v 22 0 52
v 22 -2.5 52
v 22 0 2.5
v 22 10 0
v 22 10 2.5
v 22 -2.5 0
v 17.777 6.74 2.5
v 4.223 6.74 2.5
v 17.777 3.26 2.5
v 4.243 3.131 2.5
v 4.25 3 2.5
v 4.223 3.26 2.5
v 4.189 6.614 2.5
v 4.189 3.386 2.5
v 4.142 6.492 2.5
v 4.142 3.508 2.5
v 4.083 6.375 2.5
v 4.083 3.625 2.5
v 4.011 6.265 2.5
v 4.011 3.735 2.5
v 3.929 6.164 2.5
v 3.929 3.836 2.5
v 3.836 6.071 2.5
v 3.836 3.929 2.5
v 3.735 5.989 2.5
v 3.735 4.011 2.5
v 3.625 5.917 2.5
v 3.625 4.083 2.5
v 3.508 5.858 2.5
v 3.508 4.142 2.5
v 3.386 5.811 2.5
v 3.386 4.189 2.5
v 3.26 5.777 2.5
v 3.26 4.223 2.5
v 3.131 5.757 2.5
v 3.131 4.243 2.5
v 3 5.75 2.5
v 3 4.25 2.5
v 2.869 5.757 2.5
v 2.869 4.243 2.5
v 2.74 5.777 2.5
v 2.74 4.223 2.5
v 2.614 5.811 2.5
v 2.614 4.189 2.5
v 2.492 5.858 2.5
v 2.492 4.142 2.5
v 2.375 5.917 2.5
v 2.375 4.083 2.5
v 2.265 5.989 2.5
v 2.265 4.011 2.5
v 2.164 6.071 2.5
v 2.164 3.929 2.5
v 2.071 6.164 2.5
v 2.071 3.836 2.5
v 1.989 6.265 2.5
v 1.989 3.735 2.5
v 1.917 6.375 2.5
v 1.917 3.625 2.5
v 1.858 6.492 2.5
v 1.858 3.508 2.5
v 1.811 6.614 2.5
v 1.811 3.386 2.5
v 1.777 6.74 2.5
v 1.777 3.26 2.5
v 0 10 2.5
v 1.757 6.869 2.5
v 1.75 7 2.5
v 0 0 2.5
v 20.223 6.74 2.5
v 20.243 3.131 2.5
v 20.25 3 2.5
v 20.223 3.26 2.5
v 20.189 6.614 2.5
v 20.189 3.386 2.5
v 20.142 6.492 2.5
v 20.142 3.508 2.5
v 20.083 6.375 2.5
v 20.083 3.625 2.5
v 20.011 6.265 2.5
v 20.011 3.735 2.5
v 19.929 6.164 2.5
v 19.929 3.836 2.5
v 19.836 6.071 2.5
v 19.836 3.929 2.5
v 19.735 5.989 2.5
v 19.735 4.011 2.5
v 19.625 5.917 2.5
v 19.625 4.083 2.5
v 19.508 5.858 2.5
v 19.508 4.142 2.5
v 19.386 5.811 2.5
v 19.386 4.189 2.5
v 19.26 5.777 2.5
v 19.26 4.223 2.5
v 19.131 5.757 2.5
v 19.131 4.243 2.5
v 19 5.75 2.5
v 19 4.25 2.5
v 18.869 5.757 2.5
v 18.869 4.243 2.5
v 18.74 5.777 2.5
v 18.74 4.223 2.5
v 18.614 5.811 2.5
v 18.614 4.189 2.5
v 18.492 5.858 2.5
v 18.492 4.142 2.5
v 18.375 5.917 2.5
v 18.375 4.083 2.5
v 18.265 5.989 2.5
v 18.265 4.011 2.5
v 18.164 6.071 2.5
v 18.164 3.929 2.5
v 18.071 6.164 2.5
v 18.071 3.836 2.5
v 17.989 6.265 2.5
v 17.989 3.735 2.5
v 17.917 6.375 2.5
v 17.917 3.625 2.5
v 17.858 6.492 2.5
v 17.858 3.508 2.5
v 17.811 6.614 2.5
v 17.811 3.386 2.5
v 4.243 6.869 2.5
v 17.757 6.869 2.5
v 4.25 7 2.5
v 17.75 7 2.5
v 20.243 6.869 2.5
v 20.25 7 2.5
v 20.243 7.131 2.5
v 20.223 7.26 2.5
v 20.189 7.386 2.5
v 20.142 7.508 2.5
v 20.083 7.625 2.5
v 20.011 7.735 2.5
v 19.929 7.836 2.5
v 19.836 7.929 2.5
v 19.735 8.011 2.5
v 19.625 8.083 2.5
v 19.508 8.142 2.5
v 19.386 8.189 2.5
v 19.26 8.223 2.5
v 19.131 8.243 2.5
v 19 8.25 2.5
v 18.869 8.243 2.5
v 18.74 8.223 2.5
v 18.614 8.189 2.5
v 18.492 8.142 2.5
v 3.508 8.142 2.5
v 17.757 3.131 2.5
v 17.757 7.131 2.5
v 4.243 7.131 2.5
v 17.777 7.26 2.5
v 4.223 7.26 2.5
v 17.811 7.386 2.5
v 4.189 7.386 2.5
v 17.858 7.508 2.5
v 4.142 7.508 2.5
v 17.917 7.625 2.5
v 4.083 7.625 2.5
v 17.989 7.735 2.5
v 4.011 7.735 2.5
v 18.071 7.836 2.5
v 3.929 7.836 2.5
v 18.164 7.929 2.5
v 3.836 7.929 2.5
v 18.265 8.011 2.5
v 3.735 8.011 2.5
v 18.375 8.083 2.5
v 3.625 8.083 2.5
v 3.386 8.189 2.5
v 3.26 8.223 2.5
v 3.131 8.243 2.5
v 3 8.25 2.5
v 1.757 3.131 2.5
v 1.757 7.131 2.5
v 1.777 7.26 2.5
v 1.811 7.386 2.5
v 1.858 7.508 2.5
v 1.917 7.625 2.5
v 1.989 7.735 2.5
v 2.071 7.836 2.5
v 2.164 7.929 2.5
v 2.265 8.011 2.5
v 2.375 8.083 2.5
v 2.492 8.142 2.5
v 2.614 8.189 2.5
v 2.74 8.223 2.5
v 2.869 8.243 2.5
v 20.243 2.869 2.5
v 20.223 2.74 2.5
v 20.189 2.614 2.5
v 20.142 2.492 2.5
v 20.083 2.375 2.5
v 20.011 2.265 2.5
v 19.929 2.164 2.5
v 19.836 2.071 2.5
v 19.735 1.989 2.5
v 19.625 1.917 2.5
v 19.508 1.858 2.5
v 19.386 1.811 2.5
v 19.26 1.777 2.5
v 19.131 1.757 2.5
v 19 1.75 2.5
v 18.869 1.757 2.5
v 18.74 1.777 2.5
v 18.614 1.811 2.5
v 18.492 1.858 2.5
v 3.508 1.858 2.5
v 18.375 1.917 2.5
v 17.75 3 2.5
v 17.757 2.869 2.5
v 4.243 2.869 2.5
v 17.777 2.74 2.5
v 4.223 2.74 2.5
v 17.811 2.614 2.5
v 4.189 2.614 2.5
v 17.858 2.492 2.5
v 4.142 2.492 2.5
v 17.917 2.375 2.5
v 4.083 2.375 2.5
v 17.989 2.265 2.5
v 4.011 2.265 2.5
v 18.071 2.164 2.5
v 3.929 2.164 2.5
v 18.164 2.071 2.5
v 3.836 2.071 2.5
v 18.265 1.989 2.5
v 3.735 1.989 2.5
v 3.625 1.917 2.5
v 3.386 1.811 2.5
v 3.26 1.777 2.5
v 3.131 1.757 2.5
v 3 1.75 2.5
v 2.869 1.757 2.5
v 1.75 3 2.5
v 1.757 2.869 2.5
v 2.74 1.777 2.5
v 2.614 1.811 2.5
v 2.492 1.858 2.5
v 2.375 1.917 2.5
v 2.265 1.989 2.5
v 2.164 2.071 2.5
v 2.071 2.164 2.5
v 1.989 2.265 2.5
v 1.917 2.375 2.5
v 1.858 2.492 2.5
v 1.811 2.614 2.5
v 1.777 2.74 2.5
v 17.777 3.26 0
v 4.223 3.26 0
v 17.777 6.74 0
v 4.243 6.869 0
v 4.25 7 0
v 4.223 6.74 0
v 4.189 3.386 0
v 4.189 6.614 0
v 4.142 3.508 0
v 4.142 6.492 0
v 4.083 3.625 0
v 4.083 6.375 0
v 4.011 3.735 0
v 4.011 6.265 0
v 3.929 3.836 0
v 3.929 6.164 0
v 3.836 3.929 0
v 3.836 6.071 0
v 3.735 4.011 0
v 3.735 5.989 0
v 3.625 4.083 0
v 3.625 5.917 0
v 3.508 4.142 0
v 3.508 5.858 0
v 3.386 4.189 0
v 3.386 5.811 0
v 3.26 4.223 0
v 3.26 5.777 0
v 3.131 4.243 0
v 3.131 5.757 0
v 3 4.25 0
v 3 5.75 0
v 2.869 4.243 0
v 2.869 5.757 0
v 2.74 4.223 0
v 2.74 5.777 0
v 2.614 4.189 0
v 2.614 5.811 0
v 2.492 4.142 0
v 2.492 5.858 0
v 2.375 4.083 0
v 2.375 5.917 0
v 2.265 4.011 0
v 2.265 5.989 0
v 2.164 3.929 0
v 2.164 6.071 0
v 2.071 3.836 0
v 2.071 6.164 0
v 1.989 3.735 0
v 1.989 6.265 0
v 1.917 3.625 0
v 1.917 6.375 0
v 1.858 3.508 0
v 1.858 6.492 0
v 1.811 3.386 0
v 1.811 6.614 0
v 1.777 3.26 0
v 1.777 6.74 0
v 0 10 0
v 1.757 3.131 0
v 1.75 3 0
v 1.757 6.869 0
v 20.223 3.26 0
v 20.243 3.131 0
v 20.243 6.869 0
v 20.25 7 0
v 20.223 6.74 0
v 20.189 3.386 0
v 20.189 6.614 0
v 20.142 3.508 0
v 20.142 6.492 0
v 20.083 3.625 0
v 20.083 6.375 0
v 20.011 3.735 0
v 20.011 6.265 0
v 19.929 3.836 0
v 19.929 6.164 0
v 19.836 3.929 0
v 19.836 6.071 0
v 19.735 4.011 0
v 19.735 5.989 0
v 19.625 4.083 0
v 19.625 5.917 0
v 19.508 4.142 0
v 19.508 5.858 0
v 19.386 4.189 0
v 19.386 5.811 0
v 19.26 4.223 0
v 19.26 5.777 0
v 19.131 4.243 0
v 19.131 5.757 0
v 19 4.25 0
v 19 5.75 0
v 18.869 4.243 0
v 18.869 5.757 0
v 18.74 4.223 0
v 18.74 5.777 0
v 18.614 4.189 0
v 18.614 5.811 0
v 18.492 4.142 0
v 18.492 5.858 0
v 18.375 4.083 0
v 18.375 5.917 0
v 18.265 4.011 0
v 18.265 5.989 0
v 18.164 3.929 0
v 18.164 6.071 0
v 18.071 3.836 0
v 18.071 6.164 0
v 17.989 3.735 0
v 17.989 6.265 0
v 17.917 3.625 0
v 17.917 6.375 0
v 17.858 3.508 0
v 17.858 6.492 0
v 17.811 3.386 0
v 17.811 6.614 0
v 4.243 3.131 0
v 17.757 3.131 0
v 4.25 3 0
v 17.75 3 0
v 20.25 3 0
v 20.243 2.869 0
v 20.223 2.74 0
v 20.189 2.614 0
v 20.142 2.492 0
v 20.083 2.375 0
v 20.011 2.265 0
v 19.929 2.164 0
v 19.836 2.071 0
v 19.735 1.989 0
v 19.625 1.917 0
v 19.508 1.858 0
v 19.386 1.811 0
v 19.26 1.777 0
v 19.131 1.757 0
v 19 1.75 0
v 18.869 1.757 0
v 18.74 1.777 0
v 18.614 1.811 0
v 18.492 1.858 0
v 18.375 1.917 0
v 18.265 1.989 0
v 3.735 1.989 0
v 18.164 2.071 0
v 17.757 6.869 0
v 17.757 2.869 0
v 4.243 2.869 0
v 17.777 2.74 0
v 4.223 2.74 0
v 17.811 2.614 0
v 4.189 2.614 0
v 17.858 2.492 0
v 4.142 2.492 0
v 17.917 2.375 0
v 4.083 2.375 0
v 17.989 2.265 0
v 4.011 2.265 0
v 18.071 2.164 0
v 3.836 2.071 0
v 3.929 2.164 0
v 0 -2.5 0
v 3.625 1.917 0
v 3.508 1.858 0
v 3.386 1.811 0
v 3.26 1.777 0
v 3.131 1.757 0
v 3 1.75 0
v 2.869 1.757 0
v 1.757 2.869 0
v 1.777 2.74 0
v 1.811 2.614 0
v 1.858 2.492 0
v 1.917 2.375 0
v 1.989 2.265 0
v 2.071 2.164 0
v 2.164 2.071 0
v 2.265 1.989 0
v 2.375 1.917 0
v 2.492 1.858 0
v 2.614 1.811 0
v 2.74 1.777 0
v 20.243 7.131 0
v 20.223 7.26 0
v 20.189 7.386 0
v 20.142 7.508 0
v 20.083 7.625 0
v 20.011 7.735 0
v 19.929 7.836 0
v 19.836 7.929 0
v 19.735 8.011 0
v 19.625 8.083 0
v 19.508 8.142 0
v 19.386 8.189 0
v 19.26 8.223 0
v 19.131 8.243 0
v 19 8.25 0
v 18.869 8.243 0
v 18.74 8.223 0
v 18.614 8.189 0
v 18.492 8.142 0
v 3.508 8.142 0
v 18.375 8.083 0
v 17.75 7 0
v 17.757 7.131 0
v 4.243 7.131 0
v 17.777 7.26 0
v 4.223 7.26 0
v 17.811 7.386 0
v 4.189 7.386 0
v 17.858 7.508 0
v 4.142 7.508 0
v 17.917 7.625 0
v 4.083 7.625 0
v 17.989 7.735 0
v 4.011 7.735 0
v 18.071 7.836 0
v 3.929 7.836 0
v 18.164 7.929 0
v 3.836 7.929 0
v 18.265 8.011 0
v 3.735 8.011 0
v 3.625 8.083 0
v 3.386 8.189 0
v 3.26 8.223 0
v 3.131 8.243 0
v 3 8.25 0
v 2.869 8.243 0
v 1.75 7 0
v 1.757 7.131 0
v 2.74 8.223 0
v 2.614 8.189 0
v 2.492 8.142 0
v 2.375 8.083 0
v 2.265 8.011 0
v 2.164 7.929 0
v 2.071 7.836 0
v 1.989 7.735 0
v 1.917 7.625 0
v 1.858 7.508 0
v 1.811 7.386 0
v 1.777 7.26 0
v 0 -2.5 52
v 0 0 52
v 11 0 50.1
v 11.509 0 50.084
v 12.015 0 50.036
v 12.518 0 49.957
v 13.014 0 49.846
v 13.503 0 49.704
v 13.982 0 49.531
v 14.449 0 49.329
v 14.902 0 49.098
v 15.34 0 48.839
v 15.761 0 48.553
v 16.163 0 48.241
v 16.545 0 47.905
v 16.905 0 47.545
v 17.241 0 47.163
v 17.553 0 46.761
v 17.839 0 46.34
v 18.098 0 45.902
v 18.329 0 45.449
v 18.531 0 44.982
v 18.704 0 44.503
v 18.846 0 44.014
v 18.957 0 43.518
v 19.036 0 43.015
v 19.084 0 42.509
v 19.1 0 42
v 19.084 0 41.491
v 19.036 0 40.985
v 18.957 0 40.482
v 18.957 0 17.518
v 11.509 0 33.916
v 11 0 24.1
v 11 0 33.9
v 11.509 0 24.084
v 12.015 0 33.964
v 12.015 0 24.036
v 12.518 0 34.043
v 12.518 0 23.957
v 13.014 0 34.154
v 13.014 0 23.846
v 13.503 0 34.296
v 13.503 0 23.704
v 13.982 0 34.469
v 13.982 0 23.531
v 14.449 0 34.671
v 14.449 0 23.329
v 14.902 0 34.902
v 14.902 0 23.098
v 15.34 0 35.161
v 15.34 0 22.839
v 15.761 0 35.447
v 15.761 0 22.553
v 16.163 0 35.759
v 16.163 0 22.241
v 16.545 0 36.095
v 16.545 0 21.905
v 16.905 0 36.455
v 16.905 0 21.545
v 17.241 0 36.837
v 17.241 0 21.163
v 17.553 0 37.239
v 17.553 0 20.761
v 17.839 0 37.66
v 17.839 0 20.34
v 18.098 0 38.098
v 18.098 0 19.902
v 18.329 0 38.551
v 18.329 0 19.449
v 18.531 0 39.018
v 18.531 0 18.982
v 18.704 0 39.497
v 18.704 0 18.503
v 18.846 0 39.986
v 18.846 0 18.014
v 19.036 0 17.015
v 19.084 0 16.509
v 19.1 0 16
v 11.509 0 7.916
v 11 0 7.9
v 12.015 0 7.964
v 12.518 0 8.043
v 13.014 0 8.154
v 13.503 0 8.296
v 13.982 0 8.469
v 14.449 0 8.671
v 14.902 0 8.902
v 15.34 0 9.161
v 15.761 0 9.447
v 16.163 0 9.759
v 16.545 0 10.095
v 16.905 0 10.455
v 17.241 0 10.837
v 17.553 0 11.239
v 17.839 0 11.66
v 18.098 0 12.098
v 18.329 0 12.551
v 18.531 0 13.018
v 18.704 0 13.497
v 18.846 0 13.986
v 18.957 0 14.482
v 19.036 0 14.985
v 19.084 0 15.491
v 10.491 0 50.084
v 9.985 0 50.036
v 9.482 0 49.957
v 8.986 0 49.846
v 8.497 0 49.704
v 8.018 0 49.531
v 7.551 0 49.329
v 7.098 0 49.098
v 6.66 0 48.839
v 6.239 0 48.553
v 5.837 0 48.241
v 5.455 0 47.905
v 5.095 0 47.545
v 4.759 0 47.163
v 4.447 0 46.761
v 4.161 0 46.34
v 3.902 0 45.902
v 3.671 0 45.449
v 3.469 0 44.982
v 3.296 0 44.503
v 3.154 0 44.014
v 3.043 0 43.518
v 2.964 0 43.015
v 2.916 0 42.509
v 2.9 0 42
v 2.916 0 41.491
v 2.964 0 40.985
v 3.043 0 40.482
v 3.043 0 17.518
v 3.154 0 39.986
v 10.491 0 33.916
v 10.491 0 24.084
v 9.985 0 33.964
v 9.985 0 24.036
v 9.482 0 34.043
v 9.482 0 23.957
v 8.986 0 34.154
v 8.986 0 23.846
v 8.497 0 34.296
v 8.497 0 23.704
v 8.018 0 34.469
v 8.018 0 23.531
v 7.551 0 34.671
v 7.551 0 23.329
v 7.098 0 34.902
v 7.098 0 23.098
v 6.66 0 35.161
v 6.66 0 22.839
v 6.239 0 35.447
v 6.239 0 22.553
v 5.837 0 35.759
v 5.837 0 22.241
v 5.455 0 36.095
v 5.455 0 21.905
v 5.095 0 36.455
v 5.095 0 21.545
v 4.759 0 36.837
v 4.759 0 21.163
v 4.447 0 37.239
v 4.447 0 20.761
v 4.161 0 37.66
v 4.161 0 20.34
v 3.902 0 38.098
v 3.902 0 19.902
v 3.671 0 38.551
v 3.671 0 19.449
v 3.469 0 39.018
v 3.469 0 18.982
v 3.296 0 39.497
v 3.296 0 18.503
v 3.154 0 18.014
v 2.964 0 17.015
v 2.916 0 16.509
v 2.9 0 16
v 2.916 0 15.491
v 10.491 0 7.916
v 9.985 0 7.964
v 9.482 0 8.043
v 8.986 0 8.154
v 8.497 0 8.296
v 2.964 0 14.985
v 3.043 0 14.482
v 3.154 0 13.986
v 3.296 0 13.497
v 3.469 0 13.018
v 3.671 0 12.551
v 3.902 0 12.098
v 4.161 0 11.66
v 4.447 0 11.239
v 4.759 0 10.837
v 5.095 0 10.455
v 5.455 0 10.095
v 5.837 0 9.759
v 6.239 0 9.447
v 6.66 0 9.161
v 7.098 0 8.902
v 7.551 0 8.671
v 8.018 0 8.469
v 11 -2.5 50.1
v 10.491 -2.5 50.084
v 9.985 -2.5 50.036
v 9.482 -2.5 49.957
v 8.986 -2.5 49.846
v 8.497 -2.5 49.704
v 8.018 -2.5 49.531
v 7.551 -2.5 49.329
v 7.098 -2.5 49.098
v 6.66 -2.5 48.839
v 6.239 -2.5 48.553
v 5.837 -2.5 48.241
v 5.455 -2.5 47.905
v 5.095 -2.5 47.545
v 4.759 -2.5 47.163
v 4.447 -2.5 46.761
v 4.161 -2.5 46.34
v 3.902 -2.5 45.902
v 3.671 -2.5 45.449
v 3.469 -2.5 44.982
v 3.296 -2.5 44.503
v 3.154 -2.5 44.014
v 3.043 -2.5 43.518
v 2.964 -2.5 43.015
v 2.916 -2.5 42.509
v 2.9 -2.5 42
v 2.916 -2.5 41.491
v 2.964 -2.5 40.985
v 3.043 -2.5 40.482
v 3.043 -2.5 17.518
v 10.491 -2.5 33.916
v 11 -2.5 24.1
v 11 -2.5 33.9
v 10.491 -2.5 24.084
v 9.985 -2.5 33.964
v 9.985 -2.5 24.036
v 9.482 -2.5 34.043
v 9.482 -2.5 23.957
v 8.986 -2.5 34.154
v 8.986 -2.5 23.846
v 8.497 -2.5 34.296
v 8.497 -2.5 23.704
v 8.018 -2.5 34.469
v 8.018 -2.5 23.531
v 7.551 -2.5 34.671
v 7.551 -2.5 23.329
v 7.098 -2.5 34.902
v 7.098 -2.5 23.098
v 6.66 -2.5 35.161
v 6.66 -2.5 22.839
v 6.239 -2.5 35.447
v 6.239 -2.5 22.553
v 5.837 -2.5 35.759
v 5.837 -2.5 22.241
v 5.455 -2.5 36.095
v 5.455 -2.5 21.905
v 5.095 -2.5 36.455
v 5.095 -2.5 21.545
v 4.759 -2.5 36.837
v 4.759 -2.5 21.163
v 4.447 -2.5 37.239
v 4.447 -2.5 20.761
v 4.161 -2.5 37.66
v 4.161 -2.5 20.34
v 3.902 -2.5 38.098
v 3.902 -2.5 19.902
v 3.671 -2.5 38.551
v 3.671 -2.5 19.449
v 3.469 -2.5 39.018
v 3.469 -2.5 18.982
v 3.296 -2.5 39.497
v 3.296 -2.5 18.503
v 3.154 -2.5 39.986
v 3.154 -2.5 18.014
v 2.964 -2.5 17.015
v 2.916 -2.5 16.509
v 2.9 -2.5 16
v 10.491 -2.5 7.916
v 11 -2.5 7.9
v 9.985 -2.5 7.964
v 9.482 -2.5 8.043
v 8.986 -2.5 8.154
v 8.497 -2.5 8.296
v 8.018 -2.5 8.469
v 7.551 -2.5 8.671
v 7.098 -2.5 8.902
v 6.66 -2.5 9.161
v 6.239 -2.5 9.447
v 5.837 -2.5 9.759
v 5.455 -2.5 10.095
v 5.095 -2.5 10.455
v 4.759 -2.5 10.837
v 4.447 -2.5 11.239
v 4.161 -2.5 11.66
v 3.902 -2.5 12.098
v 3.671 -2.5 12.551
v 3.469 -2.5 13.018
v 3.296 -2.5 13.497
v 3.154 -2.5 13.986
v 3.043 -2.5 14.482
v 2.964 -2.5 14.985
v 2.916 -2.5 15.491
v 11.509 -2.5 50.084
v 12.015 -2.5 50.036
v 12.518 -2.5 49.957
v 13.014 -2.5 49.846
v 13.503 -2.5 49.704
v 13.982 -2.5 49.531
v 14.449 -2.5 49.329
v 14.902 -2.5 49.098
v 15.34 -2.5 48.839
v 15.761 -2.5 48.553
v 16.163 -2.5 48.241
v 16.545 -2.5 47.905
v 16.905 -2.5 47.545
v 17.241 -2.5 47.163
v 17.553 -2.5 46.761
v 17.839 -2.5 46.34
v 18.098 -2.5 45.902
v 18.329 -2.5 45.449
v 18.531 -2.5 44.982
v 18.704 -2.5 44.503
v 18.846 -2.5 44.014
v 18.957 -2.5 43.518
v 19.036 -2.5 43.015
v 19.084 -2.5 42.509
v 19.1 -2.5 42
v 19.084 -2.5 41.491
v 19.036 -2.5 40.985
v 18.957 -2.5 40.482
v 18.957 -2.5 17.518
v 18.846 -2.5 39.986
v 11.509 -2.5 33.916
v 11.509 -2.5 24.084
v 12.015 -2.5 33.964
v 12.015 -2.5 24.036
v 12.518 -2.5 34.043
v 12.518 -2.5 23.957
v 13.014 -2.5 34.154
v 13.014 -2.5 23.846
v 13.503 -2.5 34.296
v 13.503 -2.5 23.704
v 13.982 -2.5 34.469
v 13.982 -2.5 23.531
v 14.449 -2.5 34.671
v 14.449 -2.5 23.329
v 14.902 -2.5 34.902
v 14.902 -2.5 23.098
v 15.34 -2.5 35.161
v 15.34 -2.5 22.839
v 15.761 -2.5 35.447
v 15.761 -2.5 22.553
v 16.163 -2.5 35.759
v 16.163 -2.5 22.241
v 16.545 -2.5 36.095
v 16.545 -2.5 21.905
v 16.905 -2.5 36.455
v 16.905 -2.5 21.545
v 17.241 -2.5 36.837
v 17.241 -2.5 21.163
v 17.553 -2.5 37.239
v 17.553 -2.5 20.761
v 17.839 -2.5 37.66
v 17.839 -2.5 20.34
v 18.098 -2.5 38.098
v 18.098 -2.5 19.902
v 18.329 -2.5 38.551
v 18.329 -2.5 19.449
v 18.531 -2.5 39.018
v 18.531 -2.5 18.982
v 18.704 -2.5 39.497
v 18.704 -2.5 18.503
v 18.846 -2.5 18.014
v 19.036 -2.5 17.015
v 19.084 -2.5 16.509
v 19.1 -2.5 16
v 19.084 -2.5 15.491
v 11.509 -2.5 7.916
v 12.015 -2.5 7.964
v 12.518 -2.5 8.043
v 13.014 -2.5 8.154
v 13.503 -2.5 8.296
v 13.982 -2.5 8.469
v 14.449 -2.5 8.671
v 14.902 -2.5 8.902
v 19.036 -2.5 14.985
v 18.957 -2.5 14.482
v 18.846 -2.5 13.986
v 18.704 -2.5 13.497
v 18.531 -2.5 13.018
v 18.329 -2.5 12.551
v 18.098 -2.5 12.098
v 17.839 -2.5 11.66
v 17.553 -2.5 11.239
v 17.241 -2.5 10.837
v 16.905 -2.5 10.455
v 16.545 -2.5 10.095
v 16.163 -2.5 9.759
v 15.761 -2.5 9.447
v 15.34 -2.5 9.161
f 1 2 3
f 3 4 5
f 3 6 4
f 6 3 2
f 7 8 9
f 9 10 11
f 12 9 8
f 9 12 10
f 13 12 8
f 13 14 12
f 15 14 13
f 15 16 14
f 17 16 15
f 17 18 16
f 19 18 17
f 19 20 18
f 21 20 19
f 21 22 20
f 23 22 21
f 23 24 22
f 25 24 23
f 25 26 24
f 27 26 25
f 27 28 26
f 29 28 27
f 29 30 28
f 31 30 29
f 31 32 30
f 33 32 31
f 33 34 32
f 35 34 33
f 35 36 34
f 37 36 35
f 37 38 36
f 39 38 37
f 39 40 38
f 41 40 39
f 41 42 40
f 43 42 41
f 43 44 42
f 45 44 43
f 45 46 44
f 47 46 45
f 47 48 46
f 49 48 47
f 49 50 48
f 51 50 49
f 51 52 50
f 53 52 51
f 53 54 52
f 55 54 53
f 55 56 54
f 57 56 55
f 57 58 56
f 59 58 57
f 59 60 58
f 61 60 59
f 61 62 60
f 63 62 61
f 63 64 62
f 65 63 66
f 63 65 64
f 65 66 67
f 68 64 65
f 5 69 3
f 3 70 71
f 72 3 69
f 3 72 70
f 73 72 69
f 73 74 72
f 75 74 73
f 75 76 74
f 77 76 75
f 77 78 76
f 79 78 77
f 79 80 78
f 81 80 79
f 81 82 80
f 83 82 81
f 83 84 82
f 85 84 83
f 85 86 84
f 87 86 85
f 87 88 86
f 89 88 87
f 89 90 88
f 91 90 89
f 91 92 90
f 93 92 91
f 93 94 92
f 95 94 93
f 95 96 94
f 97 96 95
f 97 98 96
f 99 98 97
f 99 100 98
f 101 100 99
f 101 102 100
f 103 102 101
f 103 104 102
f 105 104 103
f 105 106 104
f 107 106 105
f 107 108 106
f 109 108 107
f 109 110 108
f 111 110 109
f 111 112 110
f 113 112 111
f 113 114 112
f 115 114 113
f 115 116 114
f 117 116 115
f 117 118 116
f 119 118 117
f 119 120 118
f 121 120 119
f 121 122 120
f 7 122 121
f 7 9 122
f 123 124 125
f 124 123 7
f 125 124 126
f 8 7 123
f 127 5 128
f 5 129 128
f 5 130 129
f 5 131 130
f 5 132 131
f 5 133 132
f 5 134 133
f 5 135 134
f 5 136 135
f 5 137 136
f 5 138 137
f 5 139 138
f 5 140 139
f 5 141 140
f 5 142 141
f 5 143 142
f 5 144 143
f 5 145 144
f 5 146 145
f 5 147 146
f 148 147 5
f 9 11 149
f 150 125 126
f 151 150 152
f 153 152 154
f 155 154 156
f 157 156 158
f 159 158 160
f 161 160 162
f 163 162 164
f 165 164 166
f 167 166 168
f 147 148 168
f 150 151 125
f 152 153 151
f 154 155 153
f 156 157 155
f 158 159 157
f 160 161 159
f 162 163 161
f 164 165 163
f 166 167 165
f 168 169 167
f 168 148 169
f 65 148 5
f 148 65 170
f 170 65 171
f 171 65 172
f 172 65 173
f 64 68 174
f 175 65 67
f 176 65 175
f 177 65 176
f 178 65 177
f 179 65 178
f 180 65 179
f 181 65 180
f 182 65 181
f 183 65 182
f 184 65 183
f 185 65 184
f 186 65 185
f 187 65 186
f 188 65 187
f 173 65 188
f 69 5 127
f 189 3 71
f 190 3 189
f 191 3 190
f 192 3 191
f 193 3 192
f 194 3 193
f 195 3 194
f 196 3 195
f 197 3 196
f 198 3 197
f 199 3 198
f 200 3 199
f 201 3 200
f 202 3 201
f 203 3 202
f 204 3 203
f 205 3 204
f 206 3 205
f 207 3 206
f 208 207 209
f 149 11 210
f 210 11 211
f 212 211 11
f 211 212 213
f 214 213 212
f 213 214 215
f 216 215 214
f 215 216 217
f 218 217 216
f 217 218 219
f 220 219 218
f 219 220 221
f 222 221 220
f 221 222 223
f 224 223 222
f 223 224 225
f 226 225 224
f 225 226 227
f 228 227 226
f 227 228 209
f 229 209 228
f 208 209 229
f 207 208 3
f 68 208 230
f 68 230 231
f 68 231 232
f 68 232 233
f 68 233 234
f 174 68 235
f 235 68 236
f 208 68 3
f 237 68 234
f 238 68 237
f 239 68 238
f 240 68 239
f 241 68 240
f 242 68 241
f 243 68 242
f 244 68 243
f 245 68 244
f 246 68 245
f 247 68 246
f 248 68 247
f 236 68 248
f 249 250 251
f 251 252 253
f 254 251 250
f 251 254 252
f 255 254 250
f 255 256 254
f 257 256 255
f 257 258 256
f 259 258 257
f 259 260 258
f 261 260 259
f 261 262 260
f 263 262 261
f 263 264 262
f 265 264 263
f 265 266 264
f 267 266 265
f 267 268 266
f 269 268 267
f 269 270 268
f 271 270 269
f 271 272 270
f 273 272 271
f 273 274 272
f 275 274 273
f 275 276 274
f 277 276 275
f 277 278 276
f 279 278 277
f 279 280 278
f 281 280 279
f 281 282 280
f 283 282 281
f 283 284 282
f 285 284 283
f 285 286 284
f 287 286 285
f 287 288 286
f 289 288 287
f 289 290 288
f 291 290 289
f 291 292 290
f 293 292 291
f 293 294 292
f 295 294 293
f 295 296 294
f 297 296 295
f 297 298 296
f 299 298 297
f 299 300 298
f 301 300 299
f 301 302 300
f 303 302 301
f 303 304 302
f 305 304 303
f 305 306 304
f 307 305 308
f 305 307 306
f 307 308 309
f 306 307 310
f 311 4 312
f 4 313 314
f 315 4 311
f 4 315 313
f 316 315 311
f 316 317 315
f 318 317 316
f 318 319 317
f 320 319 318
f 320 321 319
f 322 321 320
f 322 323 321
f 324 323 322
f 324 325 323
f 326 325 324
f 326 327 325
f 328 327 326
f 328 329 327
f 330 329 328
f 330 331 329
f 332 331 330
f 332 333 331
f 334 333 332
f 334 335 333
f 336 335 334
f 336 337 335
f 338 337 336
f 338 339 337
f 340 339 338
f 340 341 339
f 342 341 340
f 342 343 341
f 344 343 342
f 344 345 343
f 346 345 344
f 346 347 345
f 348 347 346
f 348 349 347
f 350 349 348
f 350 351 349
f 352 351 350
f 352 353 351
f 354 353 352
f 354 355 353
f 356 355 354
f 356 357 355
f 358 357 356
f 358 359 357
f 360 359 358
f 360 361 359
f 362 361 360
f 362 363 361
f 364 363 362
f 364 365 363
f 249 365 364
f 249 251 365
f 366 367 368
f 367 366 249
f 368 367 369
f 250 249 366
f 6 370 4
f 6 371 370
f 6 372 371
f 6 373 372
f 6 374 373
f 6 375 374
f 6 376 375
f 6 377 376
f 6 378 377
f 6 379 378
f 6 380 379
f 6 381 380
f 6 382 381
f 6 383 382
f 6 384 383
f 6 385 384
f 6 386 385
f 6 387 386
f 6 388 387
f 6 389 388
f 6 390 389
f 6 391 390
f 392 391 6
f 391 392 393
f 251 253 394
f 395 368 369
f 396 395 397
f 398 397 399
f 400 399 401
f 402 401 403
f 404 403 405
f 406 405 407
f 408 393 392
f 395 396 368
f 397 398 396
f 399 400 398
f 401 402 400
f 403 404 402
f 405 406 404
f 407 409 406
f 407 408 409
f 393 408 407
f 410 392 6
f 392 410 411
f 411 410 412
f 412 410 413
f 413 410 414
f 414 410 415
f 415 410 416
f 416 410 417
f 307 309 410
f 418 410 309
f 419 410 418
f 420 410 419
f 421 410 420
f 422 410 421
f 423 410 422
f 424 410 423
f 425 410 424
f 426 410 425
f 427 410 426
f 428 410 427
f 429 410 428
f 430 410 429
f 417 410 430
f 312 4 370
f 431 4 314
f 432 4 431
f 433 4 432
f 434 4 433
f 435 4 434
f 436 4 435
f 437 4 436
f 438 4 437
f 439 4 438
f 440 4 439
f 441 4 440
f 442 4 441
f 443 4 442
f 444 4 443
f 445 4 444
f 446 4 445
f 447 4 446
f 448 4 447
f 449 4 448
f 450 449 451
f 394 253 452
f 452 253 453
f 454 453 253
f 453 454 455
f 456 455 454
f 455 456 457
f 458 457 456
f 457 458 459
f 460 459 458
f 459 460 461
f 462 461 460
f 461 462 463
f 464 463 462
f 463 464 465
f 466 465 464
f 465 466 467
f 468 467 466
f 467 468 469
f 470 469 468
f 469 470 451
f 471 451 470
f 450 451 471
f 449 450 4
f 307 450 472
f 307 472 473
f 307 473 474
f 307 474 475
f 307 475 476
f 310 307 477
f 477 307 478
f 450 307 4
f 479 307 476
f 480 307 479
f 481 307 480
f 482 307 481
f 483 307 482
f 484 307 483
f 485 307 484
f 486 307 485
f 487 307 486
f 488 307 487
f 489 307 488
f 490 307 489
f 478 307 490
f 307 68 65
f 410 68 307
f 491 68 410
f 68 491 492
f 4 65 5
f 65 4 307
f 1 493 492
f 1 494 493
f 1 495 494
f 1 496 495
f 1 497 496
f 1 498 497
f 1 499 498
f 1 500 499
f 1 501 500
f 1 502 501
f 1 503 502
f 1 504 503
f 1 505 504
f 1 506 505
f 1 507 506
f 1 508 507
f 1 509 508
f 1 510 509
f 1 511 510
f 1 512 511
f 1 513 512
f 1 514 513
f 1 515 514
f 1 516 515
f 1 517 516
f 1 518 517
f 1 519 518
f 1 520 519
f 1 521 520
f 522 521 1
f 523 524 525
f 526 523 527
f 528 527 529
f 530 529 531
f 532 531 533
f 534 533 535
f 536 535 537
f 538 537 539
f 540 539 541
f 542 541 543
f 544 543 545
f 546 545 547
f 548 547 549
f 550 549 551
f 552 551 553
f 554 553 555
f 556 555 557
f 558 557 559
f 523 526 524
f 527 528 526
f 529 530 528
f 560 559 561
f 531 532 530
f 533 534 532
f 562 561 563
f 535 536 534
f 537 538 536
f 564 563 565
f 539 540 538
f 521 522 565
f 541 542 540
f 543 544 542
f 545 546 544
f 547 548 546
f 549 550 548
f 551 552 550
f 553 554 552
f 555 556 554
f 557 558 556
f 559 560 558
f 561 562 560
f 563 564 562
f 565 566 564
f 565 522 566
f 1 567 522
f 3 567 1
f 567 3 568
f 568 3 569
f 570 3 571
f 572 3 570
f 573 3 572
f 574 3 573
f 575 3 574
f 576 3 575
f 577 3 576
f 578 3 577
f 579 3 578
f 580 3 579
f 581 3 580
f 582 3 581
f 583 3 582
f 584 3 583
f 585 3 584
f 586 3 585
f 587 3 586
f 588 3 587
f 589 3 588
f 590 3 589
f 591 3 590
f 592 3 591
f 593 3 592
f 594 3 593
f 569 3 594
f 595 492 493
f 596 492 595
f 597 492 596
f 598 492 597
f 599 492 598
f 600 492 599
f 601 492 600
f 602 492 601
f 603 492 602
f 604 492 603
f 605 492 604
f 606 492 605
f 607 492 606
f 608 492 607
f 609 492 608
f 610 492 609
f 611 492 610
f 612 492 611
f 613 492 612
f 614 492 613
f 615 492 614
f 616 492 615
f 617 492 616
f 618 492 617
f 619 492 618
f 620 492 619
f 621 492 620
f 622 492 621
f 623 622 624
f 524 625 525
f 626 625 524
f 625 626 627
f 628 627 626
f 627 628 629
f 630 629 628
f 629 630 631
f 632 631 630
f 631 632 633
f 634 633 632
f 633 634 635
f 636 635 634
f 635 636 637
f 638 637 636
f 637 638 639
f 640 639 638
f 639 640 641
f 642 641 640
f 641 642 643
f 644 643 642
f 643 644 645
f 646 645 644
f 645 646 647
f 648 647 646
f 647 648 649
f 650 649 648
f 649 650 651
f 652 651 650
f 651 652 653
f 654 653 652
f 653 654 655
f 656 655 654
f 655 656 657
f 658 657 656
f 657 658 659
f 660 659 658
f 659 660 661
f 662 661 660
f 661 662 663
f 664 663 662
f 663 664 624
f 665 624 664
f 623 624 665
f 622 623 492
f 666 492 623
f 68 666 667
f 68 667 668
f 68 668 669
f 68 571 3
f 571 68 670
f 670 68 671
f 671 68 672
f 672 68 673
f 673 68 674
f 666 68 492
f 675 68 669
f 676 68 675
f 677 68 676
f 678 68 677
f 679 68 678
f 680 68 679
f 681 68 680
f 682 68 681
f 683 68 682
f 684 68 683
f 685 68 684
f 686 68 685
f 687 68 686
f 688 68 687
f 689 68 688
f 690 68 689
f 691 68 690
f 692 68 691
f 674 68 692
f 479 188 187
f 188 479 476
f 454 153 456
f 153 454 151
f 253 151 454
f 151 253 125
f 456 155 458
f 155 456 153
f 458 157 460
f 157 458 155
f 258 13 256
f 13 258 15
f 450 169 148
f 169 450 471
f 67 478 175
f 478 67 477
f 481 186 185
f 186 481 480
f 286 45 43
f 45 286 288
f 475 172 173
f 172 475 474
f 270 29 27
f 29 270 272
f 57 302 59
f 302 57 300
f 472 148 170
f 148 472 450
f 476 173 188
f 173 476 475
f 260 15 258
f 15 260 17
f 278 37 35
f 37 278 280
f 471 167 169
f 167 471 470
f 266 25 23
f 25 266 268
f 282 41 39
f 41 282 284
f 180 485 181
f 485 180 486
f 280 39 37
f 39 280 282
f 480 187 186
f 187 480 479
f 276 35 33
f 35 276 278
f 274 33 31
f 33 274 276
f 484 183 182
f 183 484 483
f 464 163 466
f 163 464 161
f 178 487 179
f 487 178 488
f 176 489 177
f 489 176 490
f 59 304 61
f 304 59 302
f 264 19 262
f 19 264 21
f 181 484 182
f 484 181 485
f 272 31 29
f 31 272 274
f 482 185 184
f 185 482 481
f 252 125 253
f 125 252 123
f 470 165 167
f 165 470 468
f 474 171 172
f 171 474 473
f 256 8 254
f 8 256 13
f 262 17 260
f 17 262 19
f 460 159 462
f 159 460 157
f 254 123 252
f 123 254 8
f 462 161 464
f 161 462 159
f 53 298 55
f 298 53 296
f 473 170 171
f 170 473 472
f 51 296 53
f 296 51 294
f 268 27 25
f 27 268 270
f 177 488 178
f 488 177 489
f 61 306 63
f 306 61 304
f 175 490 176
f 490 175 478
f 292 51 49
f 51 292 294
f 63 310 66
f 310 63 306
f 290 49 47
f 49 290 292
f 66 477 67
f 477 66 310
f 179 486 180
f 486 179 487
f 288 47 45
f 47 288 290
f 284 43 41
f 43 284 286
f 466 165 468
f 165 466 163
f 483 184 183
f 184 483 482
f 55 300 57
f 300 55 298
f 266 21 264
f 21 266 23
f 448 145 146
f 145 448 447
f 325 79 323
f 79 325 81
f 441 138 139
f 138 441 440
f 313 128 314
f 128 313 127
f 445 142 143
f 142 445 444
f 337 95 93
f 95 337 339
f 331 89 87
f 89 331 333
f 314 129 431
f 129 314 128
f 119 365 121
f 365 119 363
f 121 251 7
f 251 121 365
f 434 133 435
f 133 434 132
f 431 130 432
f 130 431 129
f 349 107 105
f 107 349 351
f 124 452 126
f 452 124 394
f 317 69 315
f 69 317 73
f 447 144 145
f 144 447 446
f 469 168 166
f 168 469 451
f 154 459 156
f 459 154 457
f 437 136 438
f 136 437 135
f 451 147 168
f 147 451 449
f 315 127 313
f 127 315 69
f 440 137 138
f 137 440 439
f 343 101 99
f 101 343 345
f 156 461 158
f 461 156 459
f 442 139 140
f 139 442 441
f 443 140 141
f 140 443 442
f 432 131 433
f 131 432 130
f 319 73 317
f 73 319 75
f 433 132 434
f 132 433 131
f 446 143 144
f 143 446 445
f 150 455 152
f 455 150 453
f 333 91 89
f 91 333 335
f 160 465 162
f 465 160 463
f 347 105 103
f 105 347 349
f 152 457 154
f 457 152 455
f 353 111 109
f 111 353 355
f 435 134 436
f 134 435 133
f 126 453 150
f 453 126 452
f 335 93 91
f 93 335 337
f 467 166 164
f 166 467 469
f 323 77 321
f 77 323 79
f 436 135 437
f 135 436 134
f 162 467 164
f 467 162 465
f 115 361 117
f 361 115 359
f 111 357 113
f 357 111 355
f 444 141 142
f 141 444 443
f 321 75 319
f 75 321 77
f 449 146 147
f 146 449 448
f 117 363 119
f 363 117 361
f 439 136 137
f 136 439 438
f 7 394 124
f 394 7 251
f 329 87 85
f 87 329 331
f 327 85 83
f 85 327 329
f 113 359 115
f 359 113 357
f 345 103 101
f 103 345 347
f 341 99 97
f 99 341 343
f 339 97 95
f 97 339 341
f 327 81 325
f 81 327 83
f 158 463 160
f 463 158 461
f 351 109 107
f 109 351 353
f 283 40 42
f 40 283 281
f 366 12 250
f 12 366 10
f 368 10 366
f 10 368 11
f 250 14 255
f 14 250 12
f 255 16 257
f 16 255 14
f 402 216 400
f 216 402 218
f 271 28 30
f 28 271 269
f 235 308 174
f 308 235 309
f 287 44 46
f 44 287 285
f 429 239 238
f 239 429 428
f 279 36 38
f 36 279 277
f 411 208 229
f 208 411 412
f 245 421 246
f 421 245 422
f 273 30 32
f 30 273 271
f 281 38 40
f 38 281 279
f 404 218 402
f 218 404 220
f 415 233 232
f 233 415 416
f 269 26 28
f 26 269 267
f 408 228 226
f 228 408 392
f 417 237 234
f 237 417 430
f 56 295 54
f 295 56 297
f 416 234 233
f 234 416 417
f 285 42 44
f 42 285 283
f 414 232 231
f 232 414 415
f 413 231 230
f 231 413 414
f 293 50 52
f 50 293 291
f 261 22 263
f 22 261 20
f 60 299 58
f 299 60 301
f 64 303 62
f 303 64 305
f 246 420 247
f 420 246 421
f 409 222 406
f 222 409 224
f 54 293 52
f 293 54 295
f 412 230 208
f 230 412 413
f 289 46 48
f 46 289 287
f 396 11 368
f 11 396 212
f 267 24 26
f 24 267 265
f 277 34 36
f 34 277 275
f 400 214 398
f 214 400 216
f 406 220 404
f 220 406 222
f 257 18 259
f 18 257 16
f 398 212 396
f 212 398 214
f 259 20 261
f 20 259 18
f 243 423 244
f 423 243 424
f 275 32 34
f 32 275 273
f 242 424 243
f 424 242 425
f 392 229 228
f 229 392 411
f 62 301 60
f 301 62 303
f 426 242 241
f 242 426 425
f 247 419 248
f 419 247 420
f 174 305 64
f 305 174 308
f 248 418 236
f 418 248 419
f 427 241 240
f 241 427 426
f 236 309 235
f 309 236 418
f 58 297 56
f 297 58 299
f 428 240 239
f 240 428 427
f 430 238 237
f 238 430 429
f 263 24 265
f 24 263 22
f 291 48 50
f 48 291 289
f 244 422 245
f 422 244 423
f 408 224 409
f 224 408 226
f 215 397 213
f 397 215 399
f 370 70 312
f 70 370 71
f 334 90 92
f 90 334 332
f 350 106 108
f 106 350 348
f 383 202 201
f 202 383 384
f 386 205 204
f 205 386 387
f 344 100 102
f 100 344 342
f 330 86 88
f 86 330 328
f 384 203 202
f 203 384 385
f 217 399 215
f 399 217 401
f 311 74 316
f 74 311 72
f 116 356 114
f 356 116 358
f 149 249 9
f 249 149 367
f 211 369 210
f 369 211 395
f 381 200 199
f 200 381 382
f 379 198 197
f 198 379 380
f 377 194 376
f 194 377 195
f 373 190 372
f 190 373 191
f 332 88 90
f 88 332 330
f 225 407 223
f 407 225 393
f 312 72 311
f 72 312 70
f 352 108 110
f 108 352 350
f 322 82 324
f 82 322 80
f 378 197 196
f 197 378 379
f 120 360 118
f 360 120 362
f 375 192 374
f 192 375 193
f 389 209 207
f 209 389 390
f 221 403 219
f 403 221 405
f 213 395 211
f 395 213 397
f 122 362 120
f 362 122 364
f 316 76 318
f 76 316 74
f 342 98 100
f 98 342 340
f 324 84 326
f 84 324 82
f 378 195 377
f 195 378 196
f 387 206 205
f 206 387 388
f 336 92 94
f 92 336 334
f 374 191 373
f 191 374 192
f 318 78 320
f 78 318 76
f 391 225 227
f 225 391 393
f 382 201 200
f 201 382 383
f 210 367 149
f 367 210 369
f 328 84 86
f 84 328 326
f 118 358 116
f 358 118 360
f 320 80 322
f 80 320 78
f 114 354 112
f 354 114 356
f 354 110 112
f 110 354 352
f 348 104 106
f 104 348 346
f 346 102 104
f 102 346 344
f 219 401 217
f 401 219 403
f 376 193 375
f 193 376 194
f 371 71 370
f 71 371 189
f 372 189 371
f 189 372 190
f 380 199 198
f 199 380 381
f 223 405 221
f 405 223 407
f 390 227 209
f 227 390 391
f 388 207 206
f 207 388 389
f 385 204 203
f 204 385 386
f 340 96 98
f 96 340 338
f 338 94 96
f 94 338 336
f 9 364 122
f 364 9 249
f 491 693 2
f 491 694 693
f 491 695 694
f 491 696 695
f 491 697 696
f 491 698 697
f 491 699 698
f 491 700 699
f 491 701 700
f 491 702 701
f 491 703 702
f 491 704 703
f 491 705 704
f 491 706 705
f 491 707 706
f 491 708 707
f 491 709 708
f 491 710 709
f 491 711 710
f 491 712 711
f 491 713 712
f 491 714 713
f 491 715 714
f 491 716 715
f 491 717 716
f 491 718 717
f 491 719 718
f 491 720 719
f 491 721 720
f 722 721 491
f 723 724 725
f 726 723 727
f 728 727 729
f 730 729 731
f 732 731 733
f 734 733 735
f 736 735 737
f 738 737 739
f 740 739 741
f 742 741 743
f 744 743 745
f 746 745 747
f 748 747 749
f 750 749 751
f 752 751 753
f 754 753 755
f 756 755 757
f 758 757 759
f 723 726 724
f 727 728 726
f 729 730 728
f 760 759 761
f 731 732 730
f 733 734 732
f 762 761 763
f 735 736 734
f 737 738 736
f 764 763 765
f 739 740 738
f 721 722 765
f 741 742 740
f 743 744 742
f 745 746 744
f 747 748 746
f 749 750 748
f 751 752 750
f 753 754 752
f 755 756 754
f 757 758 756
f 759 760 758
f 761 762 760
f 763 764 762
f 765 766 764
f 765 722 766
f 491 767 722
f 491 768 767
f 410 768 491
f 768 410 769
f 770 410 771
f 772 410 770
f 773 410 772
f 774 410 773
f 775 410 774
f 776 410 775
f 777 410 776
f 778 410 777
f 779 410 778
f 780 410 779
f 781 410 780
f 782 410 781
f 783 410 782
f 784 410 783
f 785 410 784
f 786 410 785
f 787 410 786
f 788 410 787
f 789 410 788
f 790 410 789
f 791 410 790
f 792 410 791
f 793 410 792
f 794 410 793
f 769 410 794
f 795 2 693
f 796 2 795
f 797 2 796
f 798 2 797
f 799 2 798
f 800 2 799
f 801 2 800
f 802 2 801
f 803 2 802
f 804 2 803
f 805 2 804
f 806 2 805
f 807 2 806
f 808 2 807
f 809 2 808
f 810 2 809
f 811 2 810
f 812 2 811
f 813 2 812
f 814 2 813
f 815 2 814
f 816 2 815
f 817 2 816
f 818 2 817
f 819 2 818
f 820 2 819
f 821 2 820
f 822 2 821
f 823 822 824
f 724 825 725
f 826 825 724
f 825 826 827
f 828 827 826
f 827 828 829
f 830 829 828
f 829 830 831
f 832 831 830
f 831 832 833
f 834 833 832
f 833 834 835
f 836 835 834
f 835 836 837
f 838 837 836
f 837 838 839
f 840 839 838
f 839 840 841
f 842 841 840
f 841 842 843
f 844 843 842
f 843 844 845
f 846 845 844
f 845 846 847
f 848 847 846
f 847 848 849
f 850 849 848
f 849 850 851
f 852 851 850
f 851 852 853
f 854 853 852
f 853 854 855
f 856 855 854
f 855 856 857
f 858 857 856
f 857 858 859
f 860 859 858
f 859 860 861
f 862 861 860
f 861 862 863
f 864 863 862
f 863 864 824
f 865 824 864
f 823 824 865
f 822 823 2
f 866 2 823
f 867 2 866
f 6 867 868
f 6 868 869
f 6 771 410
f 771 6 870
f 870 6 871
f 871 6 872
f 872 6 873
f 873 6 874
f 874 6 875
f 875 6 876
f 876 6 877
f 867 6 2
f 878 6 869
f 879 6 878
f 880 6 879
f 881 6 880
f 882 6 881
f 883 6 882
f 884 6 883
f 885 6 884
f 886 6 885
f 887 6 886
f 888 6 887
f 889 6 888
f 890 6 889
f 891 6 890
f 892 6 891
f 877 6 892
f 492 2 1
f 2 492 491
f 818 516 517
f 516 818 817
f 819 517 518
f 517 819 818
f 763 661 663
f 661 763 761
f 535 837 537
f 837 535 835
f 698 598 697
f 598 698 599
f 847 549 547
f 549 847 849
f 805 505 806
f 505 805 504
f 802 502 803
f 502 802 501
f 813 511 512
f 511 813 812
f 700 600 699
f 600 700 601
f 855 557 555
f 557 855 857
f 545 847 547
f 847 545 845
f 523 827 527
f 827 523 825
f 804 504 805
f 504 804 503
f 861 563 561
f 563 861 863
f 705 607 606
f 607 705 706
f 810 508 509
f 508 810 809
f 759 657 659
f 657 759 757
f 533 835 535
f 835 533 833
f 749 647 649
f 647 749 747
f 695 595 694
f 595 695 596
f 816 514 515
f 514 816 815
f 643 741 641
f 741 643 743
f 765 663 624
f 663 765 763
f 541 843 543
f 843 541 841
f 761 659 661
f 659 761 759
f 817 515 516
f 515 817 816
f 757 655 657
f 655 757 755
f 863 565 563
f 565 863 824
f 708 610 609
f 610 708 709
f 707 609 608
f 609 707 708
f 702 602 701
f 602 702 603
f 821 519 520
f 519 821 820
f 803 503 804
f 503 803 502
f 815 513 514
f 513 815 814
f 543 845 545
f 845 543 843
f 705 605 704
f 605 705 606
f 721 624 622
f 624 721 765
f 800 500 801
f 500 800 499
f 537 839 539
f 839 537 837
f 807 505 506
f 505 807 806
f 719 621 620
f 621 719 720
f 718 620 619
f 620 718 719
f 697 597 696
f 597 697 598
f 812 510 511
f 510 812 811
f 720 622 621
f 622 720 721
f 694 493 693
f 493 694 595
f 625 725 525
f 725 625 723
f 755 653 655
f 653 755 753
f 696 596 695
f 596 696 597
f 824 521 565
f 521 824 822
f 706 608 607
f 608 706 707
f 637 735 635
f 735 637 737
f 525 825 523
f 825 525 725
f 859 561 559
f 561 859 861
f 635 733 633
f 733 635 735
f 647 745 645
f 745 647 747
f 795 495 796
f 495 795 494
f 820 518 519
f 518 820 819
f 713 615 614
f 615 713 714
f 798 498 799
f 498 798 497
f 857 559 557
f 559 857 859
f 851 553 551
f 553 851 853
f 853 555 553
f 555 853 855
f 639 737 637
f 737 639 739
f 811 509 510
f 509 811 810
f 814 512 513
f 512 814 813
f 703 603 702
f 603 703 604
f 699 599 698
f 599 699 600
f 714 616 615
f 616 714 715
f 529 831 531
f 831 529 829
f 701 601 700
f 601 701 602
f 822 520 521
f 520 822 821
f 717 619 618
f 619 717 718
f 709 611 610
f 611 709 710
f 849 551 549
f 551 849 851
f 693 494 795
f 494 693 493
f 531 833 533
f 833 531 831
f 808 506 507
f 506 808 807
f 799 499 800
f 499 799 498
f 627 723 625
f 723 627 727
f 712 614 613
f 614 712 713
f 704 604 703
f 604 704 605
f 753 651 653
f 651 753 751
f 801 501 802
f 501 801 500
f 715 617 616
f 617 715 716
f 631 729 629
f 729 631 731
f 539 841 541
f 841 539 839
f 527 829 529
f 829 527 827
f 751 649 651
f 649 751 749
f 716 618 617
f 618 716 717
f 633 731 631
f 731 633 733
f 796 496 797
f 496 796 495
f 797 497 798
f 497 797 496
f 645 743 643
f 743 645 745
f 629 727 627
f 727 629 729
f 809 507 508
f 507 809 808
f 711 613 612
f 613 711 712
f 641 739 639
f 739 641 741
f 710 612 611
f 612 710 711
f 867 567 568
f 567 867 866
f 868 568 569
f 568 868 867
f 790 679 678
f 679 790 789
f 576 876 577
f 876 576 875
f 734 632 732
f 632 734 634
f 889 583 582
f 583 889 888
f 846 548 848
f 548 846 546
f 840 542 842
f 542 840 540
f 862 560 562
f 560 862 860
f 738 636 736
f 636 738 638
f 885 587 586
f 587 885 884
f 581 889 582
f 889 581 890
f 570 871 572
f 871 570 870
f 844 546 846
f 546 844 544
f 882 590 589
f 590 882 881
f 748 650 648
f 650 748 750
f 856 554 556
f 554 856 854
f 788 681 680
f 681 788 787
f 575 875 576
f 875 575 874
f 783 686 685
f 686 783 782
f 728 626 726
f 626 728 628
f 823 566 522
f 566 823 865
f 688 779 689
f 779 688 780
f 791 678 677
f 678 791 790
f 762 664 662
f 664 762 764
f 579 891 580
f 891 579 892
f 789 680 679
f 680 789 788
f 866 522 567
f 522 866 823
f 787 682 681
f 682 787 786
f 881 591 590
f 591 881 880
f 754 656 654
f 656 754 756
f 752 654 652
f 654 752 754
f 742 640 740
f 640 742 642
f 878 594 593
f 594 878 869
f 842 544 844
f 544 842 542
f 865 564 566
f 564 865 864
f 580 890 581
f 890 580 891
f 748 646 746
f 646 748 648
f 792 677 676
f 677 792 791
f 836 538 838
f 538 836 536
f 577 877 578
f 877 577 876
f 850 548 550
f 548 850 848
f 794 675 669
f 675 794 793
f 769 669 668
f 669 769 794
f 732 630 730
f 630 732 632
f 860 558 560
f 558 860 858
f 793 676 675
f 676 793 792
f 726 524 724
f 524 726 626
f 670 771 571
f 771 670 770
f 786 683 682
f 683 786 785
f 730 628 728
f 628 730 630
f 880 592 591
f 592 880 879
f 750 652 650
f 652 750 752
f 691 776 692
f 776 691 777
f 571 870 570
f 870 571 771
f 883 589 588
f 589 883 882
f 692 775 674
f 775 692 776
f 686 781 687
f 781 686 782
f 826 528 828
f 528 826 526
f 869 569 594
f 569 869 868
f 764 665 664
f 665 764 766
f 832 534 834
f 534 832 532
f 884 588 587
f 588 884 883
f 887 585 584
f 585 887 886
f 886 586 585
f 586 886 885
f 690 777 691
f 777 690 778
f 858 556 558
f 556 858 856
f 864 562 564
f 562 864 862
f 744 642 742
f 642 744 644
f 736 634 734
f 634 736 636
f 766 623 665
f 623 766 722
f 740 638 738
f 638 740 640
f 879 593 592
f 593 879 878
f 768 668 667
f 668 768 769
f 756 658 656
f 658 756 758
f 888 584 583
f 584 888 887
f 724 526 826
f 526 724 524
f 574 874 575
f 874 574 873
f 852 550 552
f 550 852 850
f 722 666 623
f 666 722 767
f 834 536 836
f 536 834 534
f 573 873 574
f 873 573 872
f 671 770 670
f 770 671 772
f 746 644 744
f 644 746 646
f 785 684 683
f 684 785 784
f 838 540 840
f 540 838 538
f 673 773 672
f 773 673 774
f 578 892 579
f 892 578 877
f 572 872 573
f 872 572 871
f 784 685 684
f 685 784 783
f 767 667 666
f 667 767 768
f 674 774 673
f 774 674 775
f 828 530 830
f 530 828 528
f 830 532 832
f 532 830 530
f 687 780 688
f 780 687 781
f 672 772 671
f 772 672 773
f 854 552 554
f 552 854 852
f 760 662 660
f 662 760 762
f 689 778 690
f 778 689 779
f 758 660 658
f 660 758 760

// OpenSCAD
// file: wntrmute.scad
function M2() = 1;
function M25() = 1.25;
function M3() = 1.75;
function M4() = 2.1;
function PlateHeight() = 2.5;
    

module screw_hole(size, x, y, height=PlateHeight()+1) {
    union() {
       translate([x, y, -1])
       cylinder(h=5, r=size, $fn=60); 
    };
}

// x and y are the center point for the battery mount.
module battery_mount(x, y, size=M3(), rotation=0) {
    offset = 19.5 / 2;
    union() {
        screw_hole(size, x-offset, y);
        screw_hole(size, x+offset, y);
    }
}

module arduino_uno(x, y, size=M3(), rotation=0) {
    union() {
        screw_hole(size, x, y); 
        screw_hole(size, x+50.8, y-15.2);
        screw_hole(size, x+50.8, y-43.1);
        screw_hole(size, x, y-48.3);
    }
}

module robot_power_board(x, y, size=M3(), rotation=0) {
    union() {
        screw_hole(size, x, y);
        screw_hole(size, x+31.5, y);
        screw_hole(size, x, y+18.5);
        screw_hole(size, x+31.5, y+18.5);
    }
}

module raspberry_pi_zero(x, y, size=M3(), rotation=0) {
    union () {
        screw_hole(size, x, y);
        screw_hole(size, x+58, y);
        screw_hole(size, x, y+23);
        screw_hole(size, x+58, y+23);
    }
}

module raspberry_pi_3(x, y, size=M3(), rotation=0) {
    union () {
        screw_hole(size, x, y);
        screw_hole(size, x+58, y);
        screw_hole(size, x, y+49);
        screw_hole(size, x+58, y+49);
    }
}

module ultrasonic_mount(x, y, size=M3(), rotation=undef) {
    //rotate(rotation?rotation:[0,0,0])
    union() {
        screw_hole(size, x, y);
        screw_hole(size, x+13, y);
    }
}
// main file
use <wntrmute.scad>

ursHeight = 15;
ursRadius = 8;
nedges=100;

union() {
    difference() {
        rotate([90, 0, 0]) cube([22, 52, 2.5]);
        rotate([90, 0, 0]) translate([11, 42, -1]) 
            cylinder(h=ursHeight, r=ursRadius+0.1, $fn=nedges);
        rotate([90, 0, 0]) translate([11, 16, -1])
            cylinder(h=ursHeight, r=ursRadius+0.1, $fn=nedges);
    }
    
    difference() {
        cube([22, 10, 2.5]);
        screw_hole(M25(), 3, 7);
        screw_hole(M25(), 19, 7);
        screw_hole(M25(), 3, 3);
        screw_hole(M25(), 19, 3);
    }    
}
